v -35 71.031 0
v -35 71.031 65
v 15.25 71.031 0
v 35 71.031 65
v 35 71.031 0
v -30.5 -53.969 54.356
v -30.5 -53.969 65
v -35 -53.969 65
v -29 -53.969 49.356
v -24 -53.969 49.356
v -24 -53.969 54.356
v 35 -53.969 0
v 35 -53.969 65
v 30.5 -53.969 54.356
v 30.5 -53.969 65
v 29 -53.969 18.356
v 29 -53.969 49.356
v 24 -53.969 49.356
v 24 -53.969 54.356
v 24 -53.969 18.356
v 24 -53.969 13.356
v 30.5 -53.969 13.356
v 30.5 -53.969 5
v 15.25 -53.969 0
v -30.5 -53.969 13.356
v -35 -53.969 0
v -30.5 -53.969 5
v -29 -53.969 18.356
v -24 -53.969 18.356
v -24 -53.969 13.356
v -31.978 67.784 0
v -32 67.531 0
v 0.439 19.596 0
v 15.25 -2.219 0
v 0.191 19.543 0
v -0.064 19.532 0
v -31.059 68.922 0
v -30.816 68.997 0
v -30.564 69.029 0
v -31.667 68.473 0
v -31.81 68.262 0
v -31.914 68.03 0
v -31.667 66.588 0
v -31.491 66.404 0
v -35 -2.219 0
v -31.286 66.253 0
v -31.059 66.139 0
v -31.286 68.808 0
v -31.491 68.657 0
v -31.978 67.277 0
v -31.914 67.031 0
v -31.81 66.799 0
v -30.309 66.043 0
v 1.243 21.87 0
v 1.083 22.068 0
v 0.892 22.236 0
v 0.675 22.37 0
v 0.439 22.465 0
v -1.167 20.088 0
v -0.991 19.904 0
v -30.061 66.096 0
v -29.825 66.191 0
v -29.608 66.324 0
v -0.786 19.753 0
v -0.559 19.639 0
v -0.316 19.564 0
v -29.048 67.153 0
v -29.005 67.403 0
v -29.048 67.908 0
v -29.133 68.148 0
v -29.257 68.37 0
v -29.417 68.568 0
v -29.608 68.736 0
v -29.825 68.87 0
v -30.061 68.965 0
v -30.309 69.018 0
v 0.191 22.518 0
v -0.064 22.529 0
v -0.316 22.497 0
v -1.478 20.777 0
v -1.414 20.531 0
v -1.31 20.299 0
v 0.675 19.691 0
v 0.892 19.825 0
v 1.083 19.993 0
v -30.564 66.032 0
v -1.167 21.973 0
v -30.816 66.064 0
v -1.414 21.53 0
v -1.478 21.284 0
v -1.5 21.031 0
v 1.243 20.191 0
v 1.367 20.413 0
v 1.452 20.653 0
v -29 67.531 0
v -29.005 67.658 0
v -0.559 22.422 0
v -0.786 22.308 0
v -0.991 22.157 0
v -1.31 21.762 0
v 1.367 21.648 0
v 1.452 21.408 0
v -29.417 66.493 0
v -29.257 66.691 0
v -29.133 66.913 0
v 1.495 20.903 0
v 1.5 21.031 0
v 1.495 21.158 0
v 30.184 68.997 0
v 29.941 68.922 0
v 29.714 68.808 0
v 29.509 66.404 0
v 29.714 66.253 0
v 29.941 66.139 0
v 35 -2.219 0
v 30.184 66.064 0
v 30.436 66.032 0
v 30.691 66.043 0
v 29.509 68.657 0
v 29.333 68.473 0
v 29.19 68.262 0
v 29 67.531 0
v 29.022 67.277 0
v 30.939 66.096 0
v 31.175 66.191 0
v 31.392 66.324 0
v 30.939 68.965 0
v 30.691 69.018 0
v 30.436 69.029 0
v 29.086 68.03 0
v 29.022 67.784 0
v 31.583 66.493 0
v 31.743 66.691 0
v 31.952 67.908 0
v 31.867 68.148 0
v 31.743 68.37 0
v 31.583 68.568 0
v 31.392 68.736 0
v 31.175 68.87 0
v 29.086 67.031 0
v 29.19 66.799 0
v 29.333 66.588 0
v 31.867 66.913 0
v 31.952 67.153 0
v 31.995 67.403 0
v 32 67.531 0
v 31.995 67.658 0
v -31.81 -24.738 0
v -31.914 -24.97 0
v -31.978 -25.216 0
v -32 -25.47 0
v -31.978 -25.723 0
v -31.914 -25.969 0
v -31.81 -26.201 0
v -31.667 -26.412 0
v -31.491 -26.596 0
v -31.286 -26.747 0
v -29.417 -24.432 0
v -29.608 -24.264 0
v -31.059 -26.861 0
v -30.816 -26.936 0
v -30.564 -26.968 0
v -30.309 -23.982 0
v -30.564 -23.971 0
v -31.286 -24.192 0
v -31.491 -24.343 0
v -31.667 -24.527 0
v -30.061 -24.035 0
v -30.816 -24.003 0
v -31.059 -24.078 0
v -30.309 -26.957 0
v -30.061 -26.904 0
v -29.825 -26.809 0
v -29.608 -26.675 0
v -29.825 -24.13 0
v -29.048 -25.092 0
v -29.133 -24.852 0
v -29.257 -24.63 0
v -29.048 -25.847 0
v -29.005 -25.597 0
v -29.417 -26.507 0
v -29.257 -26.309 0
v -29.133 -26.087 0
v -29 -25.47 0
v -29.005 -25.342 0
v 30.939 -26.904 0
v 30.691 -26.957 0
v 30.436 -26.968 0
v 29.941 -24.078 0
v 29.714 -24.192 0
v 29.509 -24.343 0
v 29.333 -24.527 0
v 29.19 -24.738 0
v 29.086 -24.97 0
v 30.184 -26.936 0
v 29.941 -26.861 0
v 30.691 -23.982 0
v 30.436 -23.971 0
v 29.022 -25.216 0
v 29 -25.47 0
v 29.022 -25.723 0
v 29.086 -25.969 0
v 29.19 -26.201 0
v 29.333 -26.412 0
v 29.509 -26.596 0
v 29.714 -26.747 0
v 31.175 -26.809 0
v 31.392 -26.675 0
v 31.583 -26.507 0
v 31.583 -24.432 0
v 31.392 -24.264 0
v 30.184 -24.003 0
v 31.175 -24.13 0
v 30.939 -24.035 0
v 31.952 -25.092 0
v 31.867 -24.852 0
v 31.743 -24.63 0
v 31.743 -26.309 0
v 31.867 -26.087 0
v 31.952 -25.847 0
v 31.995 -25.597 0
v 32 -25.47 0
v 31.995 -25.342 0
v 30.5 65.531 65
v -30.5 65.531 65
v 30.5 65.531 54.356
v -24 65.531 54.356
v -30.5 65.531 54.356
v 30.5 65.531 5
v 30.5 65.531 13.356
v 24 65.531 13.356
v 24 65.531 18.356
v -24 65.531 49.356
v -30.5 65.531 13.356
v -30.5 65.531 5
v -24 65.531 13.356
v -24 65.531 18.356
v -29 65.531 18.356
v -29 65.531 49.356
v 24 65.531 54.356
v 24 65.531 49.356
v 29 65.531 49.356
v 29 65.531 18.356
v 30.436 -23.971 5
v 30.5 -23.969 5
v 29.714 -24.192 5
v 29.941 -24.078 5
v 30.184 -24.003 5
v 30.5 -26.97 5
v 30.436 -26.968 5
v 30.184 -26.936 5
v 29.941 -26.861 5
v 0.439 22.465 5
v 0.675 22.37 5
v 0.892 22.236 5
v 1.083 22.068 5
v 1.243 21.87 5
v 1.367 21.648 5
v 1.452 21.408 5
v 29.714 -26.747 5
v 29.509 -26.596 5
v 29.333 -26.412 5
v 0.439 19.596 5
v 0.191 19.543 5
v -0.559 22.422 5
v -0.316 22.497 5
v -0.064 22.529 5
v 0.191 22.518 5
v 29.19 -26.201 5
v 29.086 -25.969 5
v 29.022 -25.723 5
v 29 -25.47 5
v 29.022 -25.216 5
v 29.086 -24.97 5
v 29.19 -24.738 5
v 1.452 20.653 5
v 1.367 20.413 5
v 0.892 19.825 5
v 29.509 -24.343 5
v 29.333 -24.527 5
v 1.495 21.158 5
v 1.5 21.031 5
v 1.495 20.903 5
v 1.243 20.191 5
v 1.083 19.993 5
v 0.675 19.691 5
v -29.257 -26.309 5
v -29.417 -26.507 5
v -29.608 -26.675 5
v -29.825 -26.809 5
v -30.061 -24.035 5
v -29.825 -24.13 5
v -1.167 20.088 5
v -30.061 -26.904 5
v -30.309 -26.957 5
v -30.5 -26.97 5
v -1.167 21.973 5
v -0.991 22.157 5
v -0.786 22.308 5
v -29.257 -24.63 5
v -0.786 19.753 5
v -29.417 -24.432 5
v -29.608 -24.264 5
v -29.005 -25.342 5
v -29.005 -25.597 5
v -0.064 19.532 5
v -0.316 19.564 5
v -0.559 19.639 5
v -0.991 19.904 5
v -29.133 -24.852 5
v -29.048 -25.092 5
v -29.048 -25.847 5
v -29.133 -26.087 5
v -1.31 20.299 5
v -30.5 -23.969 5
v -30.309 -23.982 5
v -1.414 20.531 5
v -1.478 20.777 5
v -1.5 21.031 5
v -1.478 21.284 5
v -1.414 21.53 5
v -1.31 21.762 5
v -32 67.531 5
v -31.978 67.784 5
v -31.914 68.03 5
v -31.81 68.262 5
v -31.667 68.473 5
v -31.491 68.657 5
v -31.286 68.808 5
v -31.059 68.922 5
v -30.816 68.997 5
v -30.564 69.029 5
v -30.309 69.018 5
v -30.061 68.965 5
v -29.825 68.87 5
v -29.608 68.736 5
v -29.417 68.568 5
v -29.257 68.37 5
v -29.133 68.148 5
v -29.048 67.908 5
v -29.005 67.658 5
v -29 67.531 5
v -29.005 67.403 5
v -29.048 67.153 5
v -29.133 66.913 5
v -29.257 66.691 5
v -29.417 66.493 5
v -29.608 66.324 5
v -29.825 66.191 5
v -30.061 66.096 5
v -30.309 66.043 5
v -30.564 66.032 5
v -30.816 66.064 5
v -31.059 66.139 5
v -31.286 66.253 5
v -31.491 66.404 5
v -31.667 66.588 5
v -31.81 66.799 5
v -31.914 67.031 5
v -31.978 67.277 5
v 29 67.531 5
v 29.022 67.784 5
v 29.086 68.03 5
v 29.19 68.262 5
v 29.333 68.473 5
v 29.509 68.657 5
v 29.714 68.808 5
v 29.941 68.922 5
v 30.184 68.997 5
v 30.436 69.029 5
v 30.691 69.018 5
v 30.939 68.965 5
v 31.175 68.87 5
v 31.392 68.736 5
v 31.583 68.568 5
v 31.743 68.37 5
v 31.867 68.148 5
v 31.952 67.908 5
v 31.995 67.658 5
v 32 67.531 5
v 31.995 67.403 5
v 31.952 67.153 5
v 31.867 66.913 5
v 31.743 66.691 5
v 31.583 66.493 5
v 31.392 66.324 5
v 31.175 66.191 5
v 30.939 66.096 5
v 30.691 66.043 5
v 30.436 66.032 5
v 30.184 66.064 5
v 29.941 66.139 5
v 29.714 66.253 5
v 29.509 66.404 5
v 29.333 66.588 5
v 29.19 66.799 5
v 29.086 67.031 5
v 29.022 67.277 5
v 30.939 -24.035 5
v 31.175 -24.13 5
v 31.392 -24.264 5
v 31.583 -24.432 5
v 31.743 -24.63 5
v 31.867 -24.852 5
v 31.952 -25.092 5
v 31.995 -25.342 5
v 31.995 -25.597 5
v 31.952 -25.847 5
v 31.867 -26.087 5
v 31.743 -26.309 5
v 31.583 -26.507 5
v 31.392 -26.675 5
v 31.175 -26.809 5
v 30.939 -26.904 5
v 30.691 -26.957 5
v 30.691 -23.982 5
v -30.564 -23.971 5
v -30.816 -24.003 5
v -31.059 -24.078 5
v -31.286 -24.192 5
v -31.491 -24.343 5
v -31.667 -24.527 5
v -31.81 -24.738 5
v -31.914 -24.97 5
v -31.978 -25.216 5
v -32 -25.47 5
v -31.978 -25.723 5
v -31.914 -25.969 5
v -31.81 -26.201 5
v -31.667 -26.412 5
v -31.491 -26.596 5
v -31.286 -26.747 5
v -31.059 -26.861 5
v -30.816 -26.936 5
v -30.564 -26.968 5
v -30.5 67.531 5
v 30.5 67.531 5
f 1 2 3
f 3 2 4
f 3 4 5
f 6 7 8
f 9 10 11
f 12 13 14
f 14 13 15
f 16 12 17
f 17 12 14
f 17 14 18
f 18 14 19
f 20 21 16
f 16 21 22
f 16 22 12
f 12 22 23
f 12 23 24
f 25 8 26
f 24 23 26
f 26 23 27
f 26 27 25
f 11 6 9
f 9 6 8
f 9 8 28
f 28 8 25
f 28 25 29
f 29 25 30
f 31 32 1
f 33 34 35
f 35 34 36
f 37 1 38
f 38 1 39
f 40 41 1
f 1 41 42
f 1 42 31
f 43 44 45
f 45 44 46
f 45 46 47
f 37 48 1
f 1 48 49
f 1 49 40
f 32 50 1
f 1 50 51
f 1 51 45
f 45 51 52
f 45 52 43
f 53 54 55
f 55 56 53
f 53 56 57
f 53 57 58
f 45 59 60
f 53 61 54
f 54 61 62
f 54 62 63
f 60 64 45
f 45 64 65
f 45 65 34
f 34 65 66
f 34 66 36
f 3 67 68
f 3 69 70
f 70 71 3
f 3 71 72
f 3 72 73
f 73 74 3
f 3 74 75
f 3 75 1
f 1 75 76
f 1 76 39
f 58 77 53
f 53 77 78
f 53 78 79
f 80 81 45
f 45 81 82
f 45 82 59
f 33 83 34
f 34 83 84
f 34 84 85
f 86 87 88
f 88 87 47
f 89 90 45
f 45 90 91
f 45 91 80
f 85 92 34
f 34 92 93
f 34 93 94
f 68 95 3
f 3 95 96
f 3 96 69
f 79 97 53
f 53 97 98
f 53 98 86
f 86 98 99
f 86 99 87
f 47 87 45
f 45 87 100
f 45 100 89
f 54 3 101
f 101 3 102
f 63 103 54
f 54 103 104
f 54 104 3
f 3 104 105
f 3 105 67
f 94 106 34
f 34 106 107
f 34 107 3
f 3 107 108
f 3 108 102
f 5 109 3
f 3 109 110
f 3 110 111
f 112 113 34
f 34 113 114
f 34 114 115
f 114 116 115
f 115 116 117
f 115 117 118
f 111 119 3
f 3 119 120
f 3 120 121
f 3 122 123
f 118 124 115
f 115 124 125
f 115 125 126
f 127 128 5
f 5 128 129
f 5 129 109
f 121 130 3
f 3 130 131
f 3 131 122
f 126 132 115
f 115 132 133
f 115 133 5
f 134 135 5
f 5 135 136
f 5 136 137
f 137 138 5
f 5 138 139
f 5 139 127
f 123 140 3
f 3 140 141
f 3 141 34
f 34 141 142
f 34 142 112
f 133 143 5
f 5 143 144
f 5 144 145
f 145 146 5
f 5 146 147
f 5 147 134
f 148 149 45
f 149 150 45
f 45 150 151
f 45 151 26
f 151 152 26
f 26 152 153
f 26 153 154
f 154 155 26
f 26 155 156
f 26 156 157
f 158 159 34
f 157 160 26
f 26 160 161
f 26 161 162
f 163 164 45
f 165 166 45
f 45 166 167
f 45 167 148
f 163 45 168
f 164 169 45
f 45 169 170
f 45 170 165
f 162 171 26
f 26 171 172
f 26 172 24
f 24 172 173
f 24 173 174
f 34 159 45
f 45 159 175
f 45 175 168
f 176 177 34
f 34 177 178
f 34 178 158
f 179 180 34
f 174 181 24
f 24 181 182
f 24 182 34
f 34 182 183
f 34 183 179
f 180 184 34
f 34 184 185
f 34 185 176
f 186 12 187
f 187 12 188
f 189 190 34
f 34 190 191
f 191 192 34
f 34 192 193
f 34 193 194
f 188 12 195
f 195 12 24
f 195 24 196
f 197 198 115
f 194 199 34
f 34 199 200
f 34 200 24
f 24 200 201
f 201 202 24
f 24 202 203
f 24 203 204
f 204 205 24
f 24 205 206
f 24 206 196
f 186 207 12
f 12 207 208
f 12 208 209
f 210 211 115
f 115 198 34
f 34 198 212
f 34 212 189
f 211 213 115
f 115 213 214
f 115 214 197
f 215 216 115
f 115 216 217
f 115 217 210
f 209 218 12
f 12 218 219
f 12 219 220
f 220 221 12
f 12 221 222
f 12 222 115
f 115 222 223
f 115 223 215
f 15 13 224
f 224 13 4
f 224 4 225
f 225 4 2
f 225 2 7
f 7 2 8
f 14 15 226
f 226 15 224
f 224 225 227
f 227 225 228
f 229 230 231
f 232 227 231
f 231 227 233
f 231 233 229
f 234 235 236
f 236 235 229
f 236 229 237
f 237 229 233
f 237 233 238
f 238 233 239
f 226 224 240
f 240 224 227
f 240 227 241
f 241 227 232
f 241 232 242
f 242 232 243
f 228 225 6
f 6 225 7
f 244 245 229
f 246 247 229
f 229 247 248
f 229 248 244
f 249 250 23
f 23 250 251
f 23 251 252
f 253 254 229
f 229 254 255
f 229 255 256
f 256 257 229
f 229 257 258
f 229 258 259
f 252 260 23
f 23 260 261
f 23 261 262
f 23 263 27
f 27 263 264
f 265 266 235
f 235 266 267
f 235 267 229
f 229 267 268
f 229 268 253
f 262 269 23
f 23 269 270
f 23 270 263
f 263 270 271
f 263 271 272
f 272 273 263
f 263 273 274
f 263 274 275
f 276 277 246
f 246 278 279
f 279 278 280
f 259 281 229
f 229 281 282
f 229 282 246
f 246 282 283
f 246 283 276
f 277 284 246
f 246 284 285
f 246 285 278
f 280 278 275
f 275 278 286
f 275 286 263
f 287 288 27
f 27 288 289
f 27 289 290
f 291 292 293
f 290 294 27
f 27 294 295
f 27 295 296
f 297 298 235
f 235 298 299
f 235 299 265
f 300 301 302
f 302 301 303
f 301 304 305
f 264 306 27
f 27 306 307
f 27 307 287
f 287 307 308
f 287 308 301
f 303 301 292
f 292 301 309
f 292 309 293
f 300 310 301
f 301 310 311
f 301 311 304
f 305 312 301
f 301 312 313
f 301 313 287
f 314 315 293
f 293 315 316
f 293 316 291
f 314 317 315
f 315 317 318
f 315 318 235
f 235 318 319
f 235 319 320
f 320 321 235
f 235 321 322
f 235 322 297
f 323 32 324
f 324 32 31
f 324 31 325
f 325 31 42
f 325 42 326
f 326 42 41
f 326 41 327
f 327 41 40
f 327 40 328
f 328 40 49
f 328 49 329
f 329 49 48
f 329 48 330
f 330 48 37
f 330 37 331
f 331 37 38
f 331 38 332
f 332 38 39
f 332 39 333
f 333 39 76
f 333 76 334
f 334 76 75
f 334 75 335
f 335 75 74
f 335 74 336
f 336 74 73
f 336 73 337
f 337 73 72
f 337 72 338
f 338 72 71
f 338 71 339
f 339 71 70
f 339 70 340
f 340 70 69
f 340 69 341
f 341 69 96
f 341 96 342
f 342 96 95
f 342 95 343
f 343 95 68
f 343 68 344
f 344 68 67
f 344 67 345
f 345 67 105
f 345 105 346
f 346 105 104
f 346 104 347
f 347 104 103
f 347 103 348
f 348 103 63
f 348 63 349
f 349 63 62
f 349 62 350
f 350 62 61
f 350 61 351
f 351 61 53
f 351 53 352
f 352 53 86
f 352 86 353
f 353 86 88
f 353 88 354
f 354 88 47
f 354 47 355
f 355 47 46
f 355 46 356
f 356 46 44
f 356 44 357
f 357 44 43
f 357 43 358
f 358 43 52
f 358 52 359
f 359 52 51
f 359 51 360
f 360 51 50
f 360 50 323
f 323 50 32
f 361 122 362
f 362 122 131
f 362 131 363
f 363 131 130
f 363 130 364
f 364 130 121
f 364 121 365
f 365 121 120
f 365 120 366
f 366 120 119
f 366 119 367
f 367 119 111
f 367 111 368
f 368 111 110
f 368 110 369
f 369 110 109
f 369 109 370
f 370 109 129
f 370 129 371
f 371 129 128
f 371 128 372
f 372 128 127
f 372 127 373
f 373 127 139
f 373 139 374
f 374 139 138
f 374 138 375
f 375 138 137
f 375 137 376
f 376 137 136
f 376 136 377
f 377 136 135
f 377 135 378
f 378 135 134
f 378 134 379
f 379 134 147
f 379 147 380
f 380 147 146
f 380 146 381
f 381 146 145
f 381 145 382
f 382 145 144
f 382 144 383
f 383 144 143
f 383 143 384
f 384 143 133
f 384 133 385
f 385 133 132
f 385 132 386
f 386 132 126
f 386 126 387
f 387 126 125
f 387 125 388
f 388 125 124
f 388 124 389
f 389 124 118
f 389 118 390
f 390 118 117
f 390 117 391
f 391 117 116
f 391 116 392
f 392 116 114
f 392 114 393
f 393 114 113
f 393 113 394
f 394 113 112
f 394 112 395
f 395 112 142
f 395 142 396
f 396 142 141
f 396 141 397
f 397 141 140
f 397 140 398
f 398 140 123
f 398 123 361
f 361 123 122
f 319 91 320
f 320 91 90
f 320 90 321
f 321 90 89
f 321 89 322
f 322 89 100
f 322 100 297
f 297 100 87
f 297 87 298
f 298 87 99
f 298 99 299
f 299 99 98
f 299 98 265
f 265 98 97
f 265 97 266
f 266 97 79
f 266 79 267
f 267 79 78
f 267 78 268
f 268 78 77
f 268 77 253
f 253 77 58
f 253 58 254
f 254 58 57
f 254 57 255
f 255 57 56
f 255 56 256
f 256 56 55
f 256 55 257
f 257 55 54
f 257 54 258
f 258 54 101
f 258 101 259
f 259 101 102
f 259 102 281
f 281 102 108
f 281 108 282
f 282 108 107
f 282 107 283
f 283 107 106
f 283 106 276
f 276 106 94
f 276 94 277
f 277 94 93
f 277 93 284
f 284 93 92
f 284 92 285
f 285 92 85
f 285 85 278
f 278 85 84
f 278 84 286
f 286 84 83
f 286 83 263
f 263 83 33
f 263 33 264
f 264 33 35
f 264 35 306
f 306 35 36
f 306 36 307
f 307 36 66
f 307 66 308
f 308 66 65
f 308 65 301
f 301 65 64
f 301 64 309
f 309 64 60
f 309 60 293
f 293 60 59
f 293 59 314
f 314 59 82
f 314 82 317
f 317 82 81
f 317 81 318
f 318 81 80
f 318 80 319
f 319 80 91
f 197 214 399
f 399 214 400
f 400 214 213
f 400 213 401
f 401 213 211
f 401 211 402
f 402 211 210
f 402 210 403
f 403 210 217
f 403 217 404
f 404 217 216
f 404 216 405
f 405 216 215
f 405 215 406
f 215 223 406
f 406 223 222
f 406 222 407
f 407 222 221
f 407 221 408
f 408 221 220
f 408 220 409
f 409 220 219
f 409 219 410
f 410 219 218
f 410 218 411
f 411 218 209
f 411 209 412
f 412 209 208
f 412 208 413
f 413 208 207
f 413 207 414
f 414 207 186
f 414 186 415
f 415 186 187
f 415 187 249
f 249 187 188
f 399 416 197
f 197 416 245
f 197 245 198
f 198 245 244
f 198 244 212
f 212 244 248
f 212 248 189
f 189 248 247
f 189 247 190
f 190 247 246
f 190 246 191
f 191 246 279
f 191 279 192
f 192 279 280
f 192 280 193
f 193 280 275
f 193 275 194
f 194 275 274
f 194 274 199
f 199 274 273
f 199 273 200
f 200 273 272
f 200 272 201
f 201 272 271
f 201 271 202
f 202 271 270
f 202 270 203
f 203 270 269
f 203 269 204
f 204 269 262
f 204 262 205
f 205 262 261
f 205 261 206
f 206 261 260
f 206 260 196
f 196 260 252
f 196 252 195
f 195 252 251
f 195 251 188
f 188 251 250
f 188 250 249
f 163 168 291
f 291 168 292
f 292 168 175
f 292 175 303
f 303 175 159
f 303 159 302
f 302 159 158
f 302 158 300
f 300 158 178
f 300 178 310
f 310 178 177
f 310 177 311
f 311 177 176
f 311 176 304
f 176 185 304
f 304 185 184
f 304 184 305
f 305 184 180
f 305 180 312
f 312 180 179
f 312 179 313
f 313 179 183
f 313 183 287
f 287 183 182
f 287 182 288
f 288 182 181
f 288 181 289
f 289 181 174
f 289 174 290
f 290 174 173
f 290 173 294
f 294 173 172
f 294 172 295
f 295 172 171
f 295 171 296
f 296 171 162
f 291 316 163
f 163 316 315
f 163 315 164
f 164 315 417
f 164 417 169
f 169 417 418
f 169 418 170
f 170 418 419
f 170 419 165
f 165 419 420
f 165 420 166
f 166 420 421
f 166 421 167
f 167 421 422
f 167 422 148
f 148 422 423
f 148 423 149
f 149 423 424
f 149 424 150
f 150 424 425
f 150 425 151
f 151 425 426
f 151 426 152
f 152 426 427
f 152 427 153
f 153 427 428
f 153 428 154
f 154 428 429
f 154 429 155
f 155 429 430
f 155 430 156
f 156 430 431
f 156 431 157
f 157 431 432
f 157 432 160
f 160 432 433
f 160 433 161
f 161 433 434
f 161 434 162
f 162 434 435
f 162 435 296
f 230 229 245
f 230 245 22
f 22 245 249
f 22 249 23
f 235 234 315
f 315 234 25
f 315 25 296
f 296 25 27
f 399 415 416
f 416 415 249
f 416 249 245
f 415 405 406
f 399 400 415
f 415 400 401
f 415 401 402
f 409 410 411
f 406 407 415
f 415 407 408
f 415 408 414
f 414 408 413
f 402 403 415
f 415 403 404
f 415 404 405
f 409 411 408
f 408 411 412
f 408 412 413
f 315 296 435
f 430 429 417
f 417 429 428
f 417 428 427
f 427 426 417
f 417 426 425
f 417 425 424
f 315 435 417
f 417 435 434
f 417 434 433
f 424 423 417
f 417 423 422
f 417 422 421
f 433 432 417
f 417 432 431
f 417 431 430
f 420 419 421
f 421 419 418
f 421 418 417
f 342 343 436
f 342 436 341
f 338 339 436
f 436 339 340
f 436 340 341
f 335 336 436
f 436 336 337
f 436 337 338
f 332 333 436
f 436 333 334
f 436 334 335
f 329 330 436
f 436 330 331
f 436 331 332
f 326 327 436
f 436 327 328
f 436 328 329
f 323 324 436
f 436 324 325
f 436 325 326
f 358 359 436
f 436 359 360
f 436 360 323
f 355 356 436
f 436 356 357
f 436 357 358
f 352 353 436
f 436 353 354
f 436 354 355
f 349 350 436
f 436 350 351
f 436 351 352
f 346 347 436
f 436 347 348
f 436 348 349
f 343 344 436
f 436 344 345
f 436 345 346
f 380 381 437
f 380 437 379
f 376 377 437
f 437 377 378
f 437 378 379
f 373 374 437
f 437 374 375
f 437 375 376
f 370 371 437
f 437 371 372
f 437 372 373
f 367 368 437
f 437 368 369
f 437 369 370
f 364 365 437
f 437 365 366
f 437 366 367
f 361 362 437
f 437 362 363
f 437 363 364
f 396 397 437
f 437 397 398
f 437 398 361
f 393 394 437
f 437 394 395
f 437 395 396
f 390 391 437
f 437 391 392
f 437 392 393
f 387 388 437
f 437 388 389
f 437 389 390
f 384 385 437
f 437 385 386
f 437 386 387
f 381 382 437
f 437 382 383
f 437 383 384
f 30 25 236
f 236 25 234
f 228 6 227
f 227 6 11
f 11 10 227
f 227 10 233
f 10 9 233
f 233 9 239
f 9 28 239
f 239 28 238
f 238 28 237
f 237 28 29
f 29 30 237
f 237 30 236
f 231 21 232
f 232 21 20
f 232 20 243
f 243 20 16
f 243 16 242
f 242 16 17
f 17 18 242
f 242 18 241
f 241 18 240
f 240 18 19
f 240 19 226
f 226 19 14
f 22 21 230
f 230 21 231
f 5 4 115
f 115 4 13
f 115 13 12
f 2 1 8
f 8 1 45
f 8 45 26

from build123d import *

# Parameters (mm, degrees)
SKETCH1_W           = 72
SKETCH1_H           = 125
BOSS_EXTRUDE1_DEPTH = 5
SKETCH2_R           = 1.5
CUT_EXTRUDE6_DEPTH  = 5
BOSS_EXTRUDE2_DEPTH = 60
BOSS_EXTRUDE3_DEPTH = 119.5
SKETCH5_W           = 1
SKETCH5_H           = 65
SKETCH5_W_2         = 4
CUT_EXTRUDE7_DEPTH  = 158


with BuildPart() as part:
    # Sketch1 → Boss-Extrude1 (new body)
    with BuildSketch(Plane(origin=(0, 0, 0), x_dir=(-1, 0, 0), z_dir=(0, 0, 1))):
        with Locations((0, -8.5305)):
            Rectangle(SKETCH1_W, SKETCH1_H)
    extrude(amount=BOSS_EXTRUDE1_DEPTH)

    # Sketch2 → Cut-Extrude6 (cut)
    with BuildSketch(Plane(origin=(0, 0, 0), x_dir=(-1, 0, 0), z_dir=(0, 0, 1))):
        with Locations(Location((30.5, -67.5305, 0), (0, 0, 180))):
            Circle(SKETCH2_R)
        with Locations(Location((-30.5, -67.5305, 0), (0, 0, 180))):
            Circle(SKETCH2_R)
        with Locations(Location((30.5, 25.4695, 0), (0, 0, 180))):
            Circle(SKETCH2_R)
        with Locations(Location((-30.5, 25.4695, 0), (0, 0, 180))):
            Circle(SKETCH2_R)
        with Locations(Location((0, -21.0305, 0), (0, 0, 180))):
            Circle(SKETCH2_R)
    extrude(amount=CUT_EXTRUDE6_DEPTH, mode=Mode.SUBTRACT)

    # Sketch3 → Boss-Extrude2 (add)
    with BuildSketch(Plane.XY.offset(5)):
        Polygon((-30.5, -53.9695), (-30.5, 65.5305), (30.5, 65.5305), (30.5, -53.9695), (36, -53.9695), (36, 71.0305), (-36, 71.0305), (-36, -53.9695), align=None)
    extrude(amount=BOSS_EXTRUDE2_DEPTH)

    # Sketch4 → Boss-Extrude3 (add)
    with BuildSketch(Plane.XZ.offset(53.9695)):
        Polygon((-24, 18.356334593), (-29, 18.356334593), (-29, 49.356334593), (-24, 49.356334593), (-24, 54.356334593), (-30.5, 54.356334593), (-30.5, 13.356334593), (-24, 13.356334593), align=None)
        Polygon((29, 18.356334593), (24, 18.356334593), (24, 13.356334593), (30.5, 13.356334593), (30.5, 54.356334593), (24, 54.356334593), (24, 49.356334593), (29, 49.356334593), align=None)
    extrude(amount=-BOSS_EXTRUDE3_DEPTH)

    # Sketch5 → Cut-Extrude7 (cut)
    with BuildSketch(Plane(origin=(0, 71.0305, 0), x_dir=(1, 0, 0), z_dir=(0, 1, 0))):
        with Locations((-35.5, -32.5)):
            Rectangle(SKETCH5_W, SKETCH5_H)
        with Locations((-38, -32.5)):
            Rectangle(SKETCH5_W_2, SKETCH5_H)
        with Locations((38, -32.5)):
            Rectangle(SKETCH5_W_2, SKETCH5_H)
        with Locations((35.5, -32.5)):
            Rectangle(SKETCH5_W, SKETCH5_H)
    extrude(amount=-CUT_EXTRUDE7_DEPTH, mode=Mode.SUBTRACT)


solid = part.part
